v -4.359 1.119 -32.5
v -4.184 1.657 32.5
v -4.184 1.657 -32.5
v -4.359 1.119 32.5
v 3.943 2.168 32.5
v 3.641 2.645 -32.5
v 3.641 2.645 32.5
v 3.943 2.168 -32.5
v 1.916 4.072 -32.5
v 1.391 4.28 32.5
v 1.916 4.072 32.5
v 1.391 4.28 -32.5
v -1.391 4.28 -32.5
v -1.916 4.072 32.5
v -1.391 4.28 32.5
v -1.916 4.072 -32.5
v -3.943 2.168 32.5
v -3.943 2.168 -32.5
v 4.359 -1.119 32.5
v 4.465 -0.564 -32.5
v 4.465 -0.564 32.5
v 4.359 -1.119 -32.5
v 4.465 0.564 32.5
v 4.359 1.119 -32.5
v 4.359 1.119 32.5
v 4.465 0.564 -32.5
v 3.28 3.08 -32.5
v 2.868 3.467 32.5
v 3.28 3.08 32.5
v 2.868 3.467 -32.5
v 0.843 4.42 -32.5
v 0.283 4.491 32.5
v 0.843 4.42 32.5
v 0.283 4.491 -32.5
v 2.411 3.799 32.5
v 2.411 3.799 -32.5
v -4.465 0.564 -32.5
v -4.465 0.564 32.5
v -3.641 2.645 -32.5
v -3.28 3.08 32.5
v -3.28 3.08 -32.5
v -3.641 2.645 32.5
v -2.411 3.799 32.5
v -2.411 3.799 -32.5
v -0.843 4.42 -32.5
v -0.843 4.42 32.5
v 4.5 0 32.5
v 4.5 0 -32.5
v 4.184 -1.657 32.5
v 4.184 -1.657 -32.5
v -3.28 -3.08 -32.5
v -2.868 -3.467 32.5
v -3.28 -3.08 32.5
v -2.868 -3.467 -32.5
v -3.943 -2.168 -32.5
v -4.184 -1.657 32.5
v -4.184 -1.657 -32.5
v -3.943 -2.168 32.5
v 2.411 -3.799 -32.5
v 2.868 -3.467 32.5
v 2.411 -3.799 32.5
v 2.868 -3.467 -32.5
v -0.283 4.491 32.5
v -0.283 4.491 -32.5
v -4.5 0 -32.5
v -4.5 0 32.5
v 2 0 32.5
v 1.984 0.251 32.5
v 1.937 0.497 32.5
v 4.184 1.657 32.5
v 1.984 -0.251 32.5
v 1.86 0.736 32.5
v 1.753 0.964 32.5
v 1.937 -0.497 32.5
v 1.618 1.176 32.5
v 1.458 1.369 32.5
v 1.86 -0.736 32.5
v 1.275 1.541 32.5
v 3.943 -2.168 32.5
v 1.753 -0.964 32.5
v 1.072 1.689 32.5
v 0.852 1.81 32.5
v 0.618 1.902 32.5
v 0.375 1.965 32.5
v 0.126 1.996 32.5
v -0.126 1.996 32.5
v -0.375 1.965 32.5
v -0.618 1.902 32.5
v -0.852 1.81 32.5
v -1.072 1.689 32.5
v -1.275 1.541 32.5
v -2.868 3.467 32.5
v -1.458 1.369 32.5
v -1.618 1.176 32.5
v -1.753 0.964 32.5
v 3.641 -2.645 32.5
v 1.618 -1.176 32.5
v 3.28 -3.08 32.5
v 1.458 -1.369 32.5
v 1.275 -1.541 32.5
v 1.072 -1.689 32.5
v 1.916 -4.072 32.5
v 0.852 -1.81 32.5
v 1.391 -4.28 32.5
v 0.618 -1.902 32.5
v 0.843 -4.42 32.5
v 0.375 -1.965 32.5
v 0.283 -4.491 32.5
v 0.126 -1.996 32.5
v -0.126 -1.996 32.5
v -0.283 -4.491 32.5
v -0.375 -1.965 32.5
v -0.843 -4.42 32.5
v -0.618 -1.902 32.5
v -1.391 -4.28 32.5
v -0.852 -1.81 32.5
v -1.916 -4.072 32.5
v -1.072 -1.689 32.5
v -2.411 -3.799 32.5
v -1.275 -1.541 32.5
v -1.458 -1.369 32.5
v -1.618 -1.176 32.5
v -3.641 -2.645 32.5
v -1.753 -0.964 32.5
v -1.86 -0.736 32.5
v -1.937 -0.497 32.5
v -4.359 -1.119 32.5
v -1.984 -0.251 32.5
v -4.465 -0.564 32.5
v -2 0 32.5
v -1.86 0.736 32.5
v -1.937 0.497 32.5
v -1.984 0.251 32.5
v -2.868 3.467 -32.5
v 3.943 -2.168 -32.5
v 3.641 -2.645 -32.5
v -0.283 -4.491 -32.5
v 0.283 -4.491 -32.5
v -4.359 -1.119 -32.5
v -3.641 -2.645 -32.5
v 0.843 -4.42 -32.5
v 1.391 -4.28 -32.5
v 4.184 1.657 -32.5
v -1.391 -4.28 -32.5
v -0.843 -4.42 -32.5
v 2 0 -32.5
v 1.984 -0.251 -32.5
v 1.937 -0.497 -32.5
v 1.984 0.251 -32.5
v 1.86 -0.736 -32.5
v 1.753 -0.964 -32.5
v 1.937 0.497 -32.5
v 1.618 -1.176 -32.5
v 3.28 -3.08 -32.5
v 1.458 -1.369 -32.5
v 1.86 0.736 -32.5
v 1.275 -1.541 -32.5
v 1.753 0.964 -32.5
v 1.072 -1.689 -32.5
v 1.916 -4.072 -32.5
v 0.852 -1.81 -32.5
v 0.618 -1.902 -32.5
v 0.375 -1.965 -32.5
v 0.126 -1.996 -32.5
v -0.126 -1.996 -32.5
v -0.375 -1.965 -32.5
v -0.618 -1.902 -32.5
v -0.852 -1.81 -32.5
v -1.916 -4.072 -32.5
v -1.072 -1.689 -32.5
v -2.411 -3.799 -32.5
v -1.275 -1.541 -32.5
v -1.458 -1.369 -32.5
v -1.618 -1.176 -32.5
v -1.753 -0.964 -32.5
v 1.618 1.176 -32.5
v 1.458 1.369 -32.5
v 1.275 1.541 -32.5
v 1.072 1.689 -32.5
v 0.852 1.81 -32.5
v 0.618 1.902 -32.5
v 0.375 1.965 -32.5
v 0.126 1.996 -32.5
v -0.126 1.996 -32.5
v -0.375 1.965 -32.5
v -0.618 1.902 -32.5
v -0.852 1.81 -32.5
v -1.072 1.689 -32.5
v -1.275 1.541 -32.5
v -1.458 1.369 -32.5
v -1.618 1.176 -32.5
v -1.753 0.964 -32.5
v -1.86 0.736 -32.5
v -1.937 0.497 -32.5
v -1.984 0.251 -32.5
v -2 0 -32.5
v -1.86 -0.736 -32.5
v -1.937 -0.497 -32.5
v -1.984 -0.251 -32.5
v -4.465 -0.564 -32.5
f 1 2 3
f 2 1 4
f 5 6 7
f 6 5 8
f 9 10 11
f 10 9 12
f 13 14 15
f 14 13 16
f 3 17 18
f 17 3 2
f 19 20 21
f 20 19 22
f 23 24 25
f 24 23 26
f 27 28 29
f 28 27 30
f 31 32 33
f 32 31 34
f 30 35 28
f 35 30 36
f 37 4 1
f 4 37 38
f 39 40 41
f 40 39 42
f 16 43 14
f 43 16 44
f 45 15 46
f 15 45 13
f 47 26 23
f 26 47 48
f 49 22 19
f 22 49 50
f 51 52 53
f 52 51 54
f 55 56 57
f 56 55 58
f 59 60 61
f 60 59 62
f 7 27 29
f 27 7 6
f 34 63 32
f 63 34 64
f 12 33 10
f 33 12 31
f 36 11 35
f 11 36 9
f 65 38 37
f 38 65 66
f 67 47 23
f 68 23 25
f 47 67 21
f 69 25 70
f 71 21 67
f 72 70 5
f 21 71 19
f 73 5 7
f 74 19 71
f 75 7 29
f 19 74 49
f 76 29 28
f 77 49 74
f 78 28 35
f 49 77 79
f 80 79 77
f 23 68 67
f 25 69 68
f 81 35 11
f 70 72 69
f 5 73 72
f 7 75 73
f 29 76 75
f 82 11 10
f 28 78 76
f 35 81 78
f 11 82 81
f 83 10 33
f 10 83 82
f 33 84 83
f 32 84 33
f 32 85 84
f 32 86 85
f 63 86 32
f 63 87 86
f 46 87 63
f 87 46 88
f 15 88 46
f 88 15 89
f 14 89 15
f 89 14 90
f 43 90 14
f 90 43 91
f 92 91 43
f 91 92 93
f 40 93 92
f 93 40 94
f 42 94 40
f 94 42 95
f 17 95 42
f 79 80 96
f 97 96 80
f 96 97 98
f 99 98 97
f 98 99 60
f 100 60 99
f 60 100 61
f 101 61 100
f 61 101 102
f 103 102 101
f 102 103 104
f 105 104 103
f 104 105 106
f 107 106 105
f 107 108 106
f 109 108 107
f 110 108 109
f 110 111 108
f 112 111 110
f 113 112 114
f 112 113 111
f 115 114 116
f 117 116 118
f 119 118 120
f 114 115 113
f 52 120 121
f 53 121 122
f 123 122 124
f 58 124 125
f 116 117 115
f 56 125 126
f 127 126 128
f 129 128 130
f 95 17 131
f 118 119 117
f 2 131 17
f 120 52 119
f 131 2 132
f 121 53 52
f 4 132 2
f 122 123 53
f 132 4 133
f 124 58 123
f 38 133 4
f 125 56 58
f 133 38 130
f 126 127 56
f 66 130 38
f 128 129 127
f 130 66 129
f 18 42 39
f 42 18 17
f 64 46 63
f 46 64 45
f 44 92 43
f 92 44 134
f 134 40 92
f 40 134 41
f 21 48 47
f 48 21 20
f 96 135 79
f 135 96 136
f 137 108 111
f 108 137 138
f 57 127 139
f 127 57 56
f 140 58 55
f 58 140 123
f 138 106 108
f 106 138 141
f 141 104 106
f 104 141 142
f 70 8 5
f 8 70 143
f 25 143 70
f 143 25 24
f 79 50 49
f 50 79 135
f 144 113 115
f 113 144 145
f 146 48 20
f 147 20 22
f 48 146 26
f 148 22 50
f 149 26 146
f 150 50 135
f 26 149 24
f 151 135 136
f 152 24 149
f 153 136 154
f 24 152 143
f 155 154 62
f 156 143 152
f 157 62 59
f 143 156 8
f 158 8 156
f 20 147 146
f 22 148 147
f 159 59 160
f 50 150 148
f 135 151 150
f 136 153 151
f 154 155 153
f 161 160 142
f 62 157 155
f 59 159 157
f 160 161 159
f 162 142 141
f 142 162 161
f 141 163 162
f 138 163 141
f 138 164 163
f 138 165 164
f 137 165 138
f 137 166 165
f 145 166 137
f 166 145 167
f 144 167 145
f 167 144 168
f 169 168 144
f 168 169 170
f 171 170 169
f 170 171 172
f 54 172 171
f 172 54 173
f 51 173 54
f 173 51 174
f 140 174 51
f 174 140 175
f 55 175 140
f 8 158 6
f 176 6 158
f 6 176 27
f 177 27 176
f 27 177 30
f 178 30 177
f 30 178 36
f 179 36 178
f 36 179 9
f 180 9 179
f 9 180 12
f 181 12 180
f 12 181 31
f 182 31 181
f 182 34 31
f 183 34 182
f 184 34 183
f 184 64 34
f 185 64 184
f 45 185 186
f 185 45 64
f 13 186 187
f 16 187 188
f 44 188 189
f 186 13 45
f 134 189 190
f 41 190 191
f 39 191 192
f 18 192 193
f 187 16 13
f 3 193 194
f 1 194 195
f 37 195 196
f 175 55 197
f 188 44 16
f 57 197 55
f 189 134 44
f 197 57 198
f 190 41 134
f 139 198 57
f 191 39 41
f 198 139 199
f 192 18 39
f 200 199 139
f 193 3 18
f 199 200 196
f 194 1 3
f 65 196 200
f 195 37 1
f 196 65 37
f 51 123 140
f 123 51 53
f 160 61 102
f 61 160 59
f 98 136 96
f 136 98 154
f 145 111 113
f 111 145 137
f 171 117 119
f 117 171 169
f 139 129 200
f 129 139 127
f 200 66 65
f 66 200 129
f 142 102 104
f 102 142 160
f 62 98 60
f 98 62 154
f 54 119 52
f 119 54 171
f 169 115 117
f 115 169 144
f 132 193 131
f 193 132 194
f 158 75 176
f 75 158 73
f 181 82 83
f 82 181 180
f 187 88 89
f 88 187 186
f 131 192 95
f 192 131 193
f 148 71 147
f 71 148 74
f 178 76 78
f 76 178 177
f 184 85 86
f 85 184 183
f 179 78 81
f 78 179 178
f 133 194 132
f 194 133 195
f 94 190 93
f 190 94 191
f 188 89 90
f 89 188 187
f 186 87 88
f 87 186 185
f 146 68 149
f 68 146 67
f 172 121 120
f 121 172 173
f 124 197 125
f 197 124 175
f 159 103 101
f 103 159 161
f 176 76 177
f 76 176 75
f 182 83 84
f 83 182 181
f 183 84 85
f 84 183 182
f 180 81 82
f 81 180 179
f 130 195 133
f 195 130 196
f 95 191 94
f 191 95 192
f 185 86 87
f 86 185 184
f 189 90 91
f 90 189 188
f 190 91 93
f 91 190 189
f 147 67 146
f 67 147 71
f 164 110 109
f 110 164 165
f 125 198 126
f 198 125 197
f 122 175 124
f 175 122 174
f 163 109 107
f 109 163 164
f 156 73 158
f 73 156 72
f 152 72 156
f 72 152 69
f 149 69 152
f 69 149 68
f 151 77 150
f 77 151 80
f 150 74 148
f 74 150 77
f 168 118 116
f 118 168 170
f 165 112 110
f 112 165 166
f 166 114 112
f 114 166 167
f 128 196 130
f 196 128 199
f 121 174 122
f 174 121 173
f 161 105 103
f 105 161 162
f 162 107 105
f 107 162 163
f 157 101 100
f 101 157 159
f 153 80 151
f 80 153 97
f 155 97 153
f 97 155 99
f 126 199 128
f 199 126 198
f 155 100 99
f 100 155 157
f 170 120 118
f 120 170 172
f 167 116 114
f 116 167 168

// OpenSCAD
$fn = 50;


difference() {
	union() {
		translate(v = [0, 0, -32.5000000000]) {
			cylinder(h = 65, r = 4.5000000000);
		}
	}
	union() {
		translate(v = [0, 0, -100.0000000000]) {
			cylinder(h = 200, r = 2);
		}
	}
}
